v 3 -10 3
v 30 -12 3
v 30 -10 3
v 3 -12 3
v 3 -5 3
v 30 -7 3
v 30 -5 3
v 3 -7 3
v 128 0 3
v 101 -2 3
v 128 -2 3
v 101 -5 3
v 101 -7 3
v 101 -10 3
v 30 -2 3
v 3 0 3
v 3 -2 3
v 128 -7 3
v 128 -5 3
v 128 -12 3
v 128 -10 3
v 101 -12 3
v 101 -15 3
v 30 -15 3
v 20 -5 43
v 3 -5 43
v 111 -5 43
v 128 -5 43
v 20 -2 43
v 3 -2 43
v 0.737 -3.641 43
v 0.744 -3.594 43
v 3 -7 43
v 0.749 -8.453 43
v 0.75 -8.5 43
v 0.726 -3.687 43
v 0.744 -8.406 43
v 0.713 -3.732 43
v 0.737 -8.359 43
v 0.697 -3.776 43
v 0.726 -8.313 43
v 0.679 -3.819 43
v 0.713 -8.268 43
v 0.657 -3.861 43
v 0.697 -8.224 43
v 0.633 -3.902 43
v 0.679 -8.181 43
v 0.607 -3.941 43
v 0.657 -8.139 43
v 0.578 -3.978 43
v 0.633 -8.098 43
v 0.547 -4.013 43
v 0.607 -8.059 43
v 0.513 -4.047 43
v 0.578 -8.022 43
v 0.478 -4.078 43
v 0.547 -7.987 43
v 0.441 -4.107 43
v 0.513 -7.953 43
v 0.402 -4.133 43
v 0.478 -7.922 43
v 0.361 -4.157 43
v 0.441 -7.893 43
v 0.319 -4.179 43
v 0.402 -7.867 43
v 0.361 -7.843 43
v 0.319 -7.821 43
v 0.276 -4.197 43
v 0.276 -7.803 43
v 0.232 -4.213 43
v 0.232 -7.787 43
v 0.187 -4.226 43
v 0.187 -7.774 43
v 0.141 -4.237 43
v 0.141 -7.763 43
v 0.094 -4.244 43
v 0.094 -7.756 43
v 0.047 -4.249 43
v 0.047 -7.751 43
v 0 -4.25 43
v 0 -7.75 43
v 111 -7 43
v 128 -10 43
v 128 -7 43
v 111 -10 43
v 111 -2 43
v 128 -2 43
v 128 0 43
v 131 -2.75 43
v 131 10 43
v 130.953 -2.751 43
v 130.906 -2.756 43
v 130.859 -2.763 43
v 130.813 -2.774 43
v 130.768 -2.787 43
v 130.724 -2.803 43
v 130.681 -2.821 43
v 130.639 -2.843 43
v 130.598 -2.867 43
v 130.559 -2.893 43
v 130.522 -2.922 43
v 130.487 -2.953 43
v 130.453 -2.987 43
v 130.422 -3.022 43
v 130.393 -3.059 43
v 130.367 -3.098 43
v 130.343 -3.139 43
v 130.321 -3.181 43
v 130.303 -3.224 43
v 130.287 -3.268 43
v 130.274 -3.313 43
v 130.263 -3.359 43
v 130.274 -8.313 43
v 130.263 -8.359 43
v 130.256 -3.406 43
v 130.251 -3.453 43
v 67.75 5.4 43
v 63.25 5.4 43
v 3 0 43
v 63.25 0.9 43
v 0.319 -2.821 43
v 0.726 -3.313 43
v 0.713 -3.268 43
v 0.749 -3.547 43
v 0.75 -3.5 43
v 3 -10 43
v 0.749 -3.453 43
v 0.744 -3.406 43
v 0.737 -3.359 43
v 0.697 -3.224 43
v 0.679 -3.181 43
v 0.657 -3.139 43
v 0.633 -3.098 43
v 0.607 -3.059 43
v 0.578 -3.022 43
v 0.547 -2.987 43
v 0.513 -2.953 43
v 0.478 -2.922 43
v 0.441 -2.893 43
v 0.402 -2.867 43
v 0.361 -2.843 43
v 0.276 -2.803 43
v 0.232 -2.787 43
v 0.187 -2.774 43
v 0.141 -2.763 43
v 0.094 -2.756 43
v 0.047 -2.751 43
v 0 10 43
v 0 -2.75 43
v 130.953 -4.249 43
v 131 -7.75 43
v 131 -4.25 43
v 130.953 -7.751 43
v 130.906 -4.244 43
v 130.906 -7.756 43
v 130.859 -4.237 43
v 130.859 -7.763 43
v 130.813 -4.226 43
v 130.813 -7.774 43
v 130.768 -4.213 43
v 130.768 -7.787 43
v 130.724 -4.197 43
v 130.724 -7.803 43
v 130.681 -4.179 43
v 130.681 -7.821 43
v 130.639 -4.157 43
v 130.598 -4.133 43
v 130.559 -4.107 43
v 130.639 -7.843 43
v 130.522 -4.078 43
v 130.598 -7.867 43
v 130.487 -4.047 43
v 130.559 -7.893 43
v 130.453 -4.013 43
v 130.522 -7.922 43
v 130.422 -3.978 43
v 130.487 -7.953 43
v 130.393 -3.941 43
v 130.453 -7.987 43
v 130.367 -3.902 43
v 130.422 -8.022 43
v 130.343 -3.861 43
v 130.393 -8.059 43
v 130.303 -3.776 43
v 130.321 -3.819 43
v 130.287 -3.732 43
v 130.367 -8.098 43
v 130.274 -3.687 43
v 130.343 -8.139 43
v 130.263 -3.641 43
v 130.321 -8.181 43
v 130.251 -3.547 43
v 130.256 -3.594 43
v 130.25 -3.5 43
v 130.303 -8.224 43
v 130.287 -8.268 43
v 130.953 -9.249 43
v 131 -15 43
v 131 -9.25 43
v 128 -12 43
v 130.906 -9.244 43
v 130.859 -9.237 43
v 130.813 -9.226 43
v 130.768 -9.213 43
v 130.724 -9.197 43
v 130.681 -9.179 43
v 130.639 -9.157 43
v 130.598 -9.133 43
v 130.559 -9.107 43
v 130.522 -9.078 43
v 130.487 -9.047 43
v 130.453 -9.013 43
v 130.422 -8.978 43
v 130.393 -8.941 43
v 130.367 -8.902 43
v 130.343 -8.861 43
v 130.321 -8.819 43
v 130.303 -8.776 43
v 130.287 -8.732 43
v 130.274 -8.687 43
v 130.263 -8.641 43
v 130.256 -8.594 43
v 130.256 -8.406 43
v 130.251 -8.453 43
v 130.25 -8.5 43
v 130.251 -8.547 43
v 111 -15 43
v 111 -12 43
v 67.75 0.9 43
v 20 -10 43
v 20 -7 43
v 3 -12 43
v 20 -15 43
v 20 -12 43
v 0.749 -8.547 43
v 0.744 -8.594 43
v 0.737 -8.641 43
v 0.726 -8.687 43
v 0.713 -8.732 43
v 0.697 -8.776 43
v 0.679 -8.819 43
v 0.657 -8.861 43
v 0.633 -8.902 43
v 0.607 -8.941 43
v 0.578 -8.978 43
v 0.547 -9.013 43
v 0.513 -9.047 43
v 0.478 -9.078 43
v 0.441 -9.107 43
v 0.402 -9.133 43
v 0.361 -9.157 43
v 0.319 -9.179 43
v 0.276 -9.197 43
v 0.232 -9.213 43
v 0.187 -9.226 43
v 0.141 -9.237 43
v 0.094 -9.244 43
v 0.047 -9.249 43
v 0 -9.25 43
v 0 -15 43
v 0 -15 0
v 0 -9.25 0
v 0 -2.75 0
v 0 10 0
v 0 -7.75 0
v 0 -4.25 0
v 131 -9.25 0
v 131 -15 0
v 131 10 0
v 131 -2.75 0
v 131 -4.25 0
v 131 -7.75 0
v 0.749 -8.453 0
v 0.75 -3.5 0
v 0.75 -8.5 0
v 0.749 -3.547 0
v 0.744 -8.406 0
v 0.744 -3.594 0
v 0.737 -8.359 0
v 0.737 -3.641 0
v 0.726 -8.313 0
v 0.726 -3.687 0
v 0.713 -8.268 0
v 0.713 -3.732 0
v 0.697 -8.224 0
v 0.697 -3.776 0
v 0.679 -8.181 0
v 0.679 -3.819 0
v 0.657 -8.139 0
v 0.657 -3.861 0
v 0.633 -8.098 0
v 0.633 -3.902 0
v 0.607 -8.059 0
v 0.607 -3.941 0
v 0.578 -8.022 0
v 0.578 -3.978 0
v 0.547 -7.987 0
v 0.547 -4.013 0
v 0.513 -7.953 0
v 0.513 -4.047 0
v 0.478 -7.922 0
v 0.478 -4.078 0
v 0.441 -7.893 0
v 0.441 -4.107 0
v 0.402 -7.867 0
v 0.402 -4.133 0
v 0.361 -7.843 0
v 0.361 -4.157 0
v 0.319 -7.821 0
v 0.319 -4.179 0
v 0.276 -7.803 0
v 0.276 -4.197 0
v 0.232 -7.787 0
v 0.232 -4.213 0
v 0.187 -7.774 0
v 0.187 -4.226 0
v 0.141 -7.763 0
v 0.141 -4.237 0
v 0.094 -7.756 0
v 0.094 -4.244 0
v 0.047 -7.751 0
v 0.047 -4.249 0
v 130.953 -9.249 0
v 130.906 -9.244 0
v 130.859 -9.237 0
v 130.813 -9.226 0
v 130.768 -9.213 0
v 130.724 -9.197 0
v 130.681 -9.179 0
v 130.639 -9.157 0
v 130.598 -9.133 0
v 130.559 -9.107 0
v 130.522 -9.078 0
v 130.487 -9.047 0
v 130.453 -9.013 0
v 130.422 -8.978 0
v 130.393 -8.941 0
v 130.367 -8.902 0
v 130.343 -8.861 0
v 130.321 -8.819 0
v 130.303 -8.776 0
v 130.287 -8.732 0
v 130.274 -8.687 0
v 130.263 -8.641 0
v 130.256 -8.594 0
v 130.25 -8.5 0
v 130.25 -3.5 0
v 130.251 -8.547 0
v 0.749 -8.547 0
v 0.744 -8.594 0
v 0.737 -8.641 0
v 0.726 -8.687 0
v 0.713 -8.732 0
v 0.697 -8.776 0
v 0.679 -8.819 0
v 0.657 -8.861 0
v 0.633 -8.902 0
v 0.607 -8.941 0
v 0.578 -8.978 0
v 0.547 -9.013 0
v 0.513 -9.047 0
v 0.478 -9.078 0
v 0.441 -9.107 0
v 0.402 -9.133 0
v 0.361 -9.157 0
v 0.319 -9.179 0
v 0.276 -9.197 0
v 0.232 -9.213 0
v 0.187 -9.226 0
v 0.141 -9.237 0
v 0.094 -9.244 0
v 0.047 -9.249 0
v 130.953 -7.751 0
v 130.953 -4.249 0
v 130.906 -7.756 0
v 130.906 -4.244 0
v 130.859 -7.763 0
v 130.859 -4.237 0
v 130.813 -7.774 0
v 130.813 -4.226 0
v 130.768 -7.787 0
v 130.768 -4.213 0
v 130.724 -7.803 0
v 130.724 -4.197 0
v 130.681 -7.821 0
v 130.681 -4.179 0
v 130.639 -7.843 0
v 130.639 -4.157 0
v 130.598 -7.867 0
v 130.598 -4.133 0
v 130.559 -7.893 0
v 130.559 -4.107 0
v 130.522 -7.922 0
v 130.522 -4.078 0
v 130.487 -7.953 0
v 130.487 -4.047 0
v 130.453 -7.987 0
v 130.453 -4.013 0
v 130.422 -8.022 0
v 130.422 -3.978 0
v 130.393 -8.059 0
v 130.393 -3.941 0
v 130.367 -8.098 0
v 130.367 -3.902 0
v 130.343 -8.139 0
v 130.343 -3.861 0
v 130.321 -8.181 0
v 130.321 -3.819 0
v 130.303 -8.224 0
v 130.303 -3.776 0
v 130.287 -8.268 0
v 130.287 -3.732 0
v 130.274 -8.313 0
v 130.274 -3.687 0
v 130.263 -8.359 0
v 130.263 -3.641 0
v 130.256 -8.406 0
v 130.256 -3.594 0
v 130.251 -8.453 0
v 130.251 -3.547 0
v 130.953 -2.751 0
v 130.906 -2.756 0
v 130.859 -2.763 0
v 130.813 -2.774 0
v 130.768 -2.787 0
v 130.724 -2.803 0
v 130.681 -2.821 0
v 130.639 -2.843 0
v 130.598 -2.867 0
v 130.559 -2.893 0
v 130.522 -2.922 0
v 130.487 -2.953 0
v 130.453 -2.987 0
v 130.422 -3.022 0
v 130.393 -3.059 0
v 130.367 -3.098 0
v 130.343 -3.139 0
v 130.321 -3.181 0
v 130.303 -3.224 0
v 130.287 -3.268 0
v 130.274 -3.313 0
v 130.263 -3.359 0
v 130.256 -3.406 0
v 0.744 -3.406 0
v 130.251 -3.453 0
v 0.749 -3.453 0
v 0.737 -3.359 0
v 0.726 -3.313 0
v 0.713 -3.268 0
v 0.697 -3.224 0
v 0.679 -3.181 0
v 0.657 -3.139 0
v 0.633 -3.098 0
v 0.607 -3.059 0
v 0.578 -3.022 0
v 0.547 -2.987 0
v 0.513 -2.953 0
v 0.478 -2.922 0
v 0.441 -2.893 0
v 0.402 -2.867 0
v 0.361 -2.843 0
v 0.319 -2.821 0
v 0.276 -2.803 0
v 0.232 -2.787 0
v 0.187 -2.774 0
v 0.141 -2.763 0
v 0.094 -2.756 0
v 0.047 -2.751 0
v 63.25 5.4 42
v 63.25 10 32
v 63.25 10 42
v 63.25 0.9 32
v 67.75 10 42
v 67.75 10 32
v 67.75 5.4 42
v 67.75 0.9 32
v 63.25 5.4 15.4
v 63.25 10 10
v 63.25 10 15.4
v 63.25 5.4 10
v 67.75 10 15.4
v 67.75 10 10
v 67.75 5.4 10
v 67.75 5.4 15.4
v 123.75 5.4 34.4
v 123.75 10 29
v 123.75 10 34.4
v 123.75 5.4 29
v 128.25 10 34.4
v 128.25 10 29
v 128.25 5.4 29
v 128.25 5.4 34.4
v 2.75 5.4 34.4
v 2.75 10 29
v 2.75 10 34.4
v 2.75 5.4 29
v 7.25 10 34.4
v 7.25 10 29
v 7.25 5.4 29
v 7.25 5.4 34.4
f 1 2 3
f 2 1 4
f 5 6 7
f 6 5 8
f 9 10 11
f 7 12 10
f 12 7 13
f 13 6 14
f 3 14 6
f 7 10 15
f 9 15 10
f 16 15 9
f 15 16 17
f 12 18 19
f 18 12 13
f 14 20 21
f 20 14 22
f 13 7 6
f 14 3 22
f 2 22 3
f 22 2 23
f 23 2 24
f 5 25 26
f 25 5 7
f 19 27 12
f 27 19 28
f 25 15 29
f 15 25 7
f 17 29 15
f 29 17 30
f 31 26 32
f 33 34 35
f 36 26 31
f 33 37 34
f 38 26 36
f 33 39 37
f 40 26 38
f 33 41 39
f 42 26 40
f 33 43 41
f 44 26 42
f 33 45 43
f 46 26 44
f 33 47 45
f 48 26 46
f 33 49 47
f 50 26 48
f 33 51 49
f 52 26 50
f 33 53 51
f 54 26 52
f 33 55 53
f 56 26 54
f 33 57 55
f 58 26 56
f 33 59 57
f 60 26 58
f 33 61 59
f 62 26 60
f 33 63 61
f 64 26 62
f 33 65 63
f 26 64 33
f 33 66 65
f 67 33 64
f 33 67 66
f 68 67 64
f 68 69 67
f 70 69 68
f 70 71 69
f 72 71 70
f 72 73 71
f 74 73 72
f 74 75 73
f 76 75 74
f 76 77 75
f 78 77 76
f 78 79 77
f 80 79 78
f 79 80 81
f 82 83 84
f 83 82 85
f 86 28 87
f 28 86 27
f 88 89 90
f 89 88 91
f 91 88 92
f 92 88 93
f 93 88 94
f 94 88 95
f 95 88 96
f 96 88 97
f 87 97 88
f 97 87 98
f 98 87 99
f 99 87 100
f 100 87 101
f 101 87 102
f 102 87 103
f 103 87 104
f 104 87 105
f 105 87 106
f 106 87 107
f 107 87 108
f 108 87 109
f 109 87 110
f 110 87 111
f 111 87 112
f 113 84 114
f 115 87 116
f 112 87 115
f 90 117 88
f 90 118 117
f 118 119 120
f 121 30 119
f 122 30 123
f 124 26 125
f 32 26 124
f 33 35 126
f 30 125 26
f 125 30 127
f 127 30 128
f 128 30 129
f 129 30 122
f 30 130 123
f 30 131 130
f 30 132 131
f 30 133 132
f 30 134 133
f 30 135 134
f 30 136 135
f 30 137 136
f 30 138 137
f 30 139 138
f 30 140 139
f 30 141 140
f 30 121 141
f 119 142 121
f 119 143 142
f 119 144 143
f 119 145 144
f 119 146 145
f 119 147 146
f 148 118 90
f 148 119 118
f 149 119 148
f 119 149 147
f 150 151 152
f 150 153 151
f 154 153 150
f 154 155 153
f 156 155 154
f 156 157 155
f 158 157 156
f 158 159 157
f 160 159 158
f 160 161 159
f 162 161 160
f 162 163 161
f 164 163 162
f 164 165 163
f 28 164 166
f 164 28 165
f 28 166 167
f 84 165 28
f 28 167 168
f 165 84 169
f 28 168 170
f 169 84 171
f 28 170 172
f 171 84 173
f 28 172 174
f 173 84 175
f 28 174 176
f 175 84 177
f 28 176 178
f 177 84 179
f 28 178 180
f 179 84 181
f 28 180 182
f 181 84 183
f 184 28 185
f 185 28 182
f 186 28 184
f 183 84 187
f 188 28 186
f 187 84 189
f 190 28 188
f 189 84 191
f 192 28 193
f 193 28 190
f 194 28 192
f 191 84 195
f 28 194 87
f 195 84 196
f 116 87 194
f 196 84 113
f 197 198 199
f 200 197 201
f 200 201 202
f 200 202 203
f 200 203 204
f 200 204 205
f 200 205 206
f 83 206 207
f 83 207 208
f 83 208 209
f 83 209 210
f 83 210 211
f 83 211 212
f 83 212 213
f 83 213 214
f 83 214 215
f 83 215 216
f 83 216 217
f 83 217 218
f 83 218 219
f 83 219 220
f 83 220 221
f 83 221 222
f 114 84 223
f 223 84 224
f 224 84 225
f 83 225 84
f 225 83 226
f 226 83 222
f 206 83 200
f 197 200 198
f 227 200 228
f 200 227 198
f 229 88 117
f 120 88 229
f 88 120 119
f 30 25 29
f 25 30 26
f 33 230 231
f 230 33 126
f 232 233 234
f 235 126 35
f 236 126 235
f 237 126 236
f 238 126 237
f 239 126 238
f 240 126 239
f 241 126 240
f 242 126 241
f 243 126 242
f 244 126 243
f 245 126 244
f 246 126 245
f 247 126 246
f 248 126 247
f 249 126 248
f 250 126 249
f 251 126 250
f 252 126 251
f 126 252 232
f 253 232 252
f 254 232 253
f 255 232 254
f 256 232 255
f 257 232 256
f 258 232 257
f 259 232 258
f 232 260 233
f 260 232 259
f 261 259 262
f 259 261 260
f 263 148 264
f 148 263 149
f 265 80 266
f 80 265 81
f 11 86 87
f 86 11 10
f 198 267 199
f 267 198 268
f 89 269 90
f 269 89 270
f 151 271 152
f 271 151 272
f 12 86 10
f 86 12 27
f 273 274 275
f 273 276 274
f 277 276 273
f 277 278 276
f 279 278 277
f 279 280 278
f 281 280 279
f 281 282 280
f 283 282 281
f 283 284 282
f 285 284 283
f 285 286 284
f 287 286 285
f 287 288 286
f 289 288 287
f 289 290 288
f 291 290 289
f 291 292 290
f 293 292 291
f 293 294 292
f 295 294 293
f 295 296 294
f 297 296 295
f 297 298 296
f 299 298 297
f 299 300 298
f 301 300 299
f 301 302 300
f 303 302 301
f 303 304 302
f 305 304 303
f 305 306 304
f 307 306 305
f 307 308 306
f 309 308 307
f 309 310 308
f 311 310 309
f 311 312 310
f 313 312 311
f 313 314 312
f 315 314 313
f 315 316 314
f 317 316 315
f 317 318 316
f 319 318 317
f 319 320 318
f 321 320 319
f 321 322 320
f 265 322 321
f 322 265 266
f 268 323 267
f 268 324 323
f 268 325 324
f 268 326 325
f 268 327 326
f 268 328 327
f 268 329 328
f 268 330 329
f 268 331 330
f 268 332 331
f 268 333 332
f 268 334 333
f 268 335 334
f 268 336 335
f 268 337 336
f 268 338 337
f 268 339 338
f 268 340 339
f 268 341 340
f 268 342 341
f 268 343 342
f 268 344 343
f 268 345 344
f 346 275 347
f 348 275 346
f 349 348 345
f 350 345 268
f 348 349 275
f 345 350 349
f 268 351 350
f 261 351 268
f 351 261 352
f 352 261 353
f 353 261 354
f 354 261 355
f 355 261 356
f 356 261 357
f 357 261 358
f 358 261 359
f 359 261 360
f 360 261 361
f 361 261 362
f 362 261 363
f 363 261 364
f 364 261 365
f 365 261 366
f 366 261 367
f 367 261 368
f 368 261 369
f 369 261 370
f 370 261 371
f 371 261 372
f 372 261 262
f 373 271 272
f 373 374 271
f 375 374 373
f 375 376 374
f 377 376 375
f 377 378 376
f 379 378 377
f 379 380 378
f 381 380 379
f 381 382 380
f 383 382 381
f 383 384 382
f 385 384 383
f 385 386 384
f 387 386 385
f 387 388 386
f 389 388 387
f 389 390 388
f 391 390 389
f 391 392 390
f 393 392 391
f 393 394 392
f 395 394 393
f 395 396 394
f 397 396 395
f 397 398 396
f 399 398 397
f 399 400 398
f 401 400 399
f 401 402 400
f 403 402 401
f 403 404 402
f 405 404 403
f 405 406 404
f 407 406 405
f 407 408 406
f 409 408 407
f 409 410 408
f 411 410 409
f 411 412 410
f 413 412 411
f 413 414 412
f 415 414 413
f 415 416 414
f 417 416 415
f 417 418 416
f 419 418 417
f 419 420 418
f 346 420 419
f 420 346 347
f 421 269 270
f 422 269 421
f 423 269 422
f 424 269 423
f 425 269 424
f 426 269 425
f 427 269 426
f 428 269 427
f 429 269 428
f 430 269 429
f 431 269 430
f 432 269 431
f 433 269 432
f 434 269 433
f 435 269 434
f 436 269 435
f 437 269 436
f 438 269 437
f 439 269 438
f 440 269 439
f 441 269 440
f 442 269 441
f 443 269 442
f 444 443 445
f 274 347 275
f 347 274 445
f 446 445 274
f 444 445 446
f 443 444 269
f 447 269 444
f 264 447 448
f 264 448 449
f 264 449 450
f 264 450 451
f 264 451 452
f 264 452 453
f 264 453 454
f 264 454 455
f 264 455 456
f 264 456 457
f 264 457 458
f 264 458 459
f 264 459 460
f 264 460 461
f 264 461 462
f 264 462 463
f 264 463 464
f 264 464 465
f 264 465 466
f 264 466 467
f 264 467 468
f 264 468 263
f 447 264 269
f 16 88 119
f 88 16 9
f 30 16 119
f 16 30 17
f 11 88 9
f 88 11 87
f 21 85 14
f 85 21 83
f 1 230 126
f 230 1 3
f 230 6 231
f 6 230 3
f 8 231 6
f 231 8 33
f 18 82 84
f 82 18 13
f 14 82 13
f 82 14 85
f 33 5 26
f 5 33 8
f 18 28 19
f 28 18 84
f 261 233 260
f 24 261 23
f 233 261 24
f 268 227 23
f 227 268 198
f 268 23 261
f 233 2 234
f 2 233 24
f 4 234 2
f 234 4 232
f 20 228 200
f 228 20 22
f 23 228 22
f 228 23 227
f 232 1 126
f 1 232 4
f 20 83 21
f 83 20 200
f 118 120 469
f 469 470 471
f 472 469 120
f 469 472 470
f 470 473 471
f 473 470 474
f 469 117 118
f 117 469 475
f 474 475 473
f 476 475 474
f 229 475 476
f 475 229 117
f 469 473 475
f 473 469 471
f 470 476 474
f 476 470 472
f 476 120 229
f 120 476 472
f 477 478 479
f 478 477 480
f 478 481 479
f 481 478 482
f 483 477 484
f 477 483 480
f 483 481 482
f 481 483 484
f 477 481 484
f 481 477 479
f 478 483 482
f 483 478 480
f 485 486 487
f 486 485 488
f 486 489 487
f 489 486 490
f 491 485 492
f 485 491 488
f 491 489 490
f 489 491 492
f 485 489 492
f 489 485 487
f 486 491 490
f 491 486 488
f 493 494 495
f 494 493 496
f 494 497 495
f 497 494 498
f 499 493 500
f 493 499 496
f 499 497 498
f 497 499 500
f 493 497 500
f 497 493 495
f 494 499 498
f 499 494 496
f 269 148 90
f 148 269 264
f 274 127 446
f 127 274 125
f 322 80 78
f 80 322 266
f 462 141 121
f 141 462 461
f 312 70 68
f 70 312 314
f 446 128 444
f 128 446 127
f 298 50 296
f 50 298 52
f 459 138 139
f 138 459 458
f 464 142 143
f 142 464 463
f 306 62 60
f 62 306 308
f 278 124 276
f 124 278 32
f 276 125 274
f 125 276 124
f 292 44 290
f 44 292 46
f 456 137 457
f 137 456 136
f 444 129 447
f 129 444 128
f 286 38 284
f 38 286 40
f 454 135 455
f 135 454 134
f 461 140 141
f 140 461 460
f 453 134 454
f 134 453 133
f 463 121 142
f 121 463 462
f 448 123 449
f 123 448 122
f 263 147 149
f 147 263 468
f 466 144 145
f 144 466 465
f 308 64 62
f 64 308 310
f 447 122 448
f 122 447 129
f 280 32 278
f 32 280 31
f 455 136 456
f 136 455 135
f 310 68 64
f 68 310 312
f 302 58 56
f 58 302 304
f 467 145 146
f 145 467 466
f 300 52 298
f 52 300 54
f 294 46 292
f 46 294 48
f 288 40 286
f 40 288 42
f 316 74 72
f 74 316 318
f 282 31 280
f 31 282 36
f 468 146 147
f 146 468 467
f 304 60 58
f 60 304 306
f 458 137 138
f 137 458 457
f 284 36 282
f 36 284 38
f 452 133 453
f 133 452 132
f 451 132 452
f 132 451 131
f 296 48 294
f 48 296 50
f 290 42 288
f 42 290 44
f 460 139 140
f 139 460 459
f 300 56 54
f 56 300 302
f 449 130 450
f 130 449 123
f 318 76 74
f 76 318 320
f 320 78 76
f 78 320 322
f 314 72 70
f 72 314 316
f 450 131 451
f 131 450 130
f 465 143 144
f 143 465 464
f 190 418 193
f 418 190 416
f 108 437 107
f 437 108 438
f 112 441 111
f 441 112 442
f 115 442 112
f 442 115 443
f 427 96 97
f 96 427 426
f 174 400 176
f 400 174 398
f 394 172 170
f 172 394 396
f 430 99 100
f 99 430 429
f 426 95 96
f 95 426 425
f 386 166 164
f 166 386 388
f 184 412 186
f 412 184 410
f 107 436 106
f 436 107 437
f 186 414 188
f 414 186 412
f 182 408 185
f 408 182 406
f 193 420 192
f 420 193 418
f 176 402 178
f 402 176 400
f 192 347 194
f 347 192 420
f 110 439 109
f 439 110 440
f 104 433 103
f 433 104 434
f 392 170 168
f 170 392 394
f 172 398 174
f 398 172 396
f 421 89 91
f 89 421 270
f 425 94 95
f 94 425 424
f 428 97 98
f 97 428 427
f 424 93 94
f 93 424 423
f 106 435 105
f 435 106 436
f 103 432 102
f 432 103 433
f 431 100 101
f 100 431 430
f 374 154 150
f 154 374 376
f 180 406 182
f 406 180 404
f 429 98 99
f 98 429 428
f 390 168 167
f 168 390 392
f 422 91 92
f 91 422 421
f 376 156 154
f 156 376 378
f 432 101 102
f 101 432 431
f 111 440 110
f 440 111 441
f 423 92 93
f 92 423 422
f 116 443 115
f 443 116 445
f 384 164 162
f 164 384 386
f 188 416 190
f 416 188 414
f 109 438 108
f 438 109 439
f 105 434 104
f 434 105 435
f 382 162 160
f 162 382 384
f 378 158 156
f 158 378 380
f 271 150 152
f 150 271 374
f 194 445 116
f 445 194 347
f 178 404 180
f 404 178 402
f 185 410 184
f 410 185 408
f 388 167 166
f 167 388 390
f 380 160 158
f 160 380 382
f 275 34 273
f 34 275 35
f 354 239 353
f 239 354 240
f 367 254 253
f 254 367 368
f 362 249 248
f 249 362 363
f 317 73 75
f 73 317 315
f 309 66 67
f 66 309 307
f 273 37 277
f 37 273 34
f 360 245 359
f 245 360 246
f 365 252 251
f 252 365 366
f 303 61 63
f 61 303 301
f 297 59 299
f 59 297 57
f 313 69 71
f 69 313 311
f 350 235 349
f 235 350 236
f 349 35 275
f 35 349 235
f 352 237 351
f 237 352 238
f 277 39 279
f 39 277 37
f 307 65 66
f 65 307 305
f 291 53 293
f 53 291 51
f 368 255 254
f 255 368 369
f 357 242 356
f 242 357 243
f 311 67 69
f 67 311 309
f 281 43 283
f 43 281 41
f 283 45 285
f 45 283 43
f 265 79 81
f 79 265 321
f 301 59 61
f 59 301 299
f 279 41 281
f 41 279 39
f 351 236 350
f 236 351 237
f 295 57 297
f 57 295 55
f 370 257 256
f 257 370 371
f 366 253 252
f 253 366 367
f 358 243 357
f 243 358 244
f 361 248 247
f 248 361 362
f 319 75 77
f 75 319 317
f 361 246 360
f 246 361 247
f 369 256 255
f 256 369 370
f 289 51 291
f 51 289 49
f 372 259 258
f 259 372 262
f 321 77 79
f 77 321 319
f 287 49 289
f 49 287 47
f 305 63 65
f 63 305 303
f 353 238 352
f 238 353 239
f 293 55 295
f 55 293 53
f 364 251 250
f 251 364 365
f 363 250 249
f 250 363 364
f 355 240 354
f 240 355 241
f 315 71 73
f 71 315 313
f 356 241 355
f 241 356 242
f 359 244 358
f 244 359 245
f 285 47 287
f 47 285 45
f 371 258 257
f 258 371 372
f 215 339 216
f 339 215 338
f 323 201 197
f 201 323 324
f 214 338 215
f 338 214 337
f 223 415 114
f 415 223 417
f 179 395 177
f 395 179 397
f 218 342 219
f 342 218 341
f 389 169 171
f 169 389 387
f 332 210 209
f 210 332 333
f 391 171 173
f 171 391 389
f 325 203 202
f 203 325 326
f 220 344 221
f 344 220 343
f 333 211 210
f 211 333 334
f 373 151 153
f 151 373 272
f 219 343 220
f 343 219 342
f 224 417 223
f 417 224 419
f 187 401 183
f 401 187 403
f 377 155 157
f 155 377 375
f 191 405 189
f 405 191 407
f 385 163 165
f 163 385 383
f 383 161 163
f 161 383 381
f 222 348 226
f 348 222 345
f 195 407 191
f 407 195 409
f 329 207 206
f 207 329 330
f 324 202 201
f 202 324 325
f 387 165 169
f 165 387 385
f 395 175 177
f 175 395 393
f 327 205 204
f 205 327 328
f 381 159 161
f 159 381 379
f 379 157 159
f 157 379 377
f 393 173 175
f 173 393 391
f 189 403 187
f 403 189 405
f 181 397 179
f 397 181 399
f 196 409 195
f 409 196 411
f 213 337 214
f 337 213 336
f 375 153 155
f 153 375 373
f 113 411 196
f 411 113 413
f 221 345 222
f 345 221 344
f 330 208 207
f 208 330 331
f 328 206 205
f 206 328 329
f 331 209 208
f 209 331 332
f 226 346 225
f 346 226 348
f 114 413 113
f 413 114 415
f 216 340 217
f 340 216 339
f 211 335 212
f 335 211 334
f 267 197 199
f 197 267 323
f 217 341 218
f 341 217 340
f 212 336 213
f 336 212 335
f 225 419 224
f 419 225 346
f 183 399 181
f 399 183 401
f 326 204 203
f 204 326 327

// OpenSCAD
// file: skadis_base.scad
module skadis_base() {
    translate([-4.5/2, 4.6, 22]) rotate([90, 0, 0]) union() {
        cube([4.5, 10, 4.6]);
        translate([0, 0, -4.5]) cube([4.5, 15, 4.5]);
        translate([0, -22, 0]) cube([4.5, 5.4, 4.6]);
    }
}

//difference() {
//    cube([60, 60, 4.6], center = true);
//    skadis_base();
//}
// main file
NUMBER_OF_PLATES    =   3;
BUILD_PLATE_WIDTH   =   120;
EXTRA_MARGIN        =   5;
THICKNESS           =   2;
WALL_THICKNESS      =   3;
FLOOR_THICKNESS     =   3;
BACKPLATE_THICKNESS =   10;

// CALCULATED
FLANGE_HEIGHT       =   BUILD_PLATE_WIDTH/3;
TOP_FLANGE_WIDTH    =   BUILD_PLATE_WIDTH/6;
BOTTOM_FLANGE_WIDTH =   BUILD_PLATE_WIDTH/4;
TOTAL_WIDTH         =   BUILD_PLATE_WIDTH + WALL_THICKNESS*2 + EXTRA_MARGIN;
TOTAL_DEPTH_PER_PLATE = WALL_THICKNESS+THICKNESS;
TOTAL_HEIGHT        = FLANGE_HEIGHT+FLOOR_THICKNESS;


SKADIS_Y_DIST       =   60.5;
SKADIS_Z_DIST       =   19.0;

include <skadis_base.scad>;

module build_plate_holder() {
    difference() {
        union() {
            backplate();
            for(i = [0 : NUMBER_OF_PLATES-1]) {
                difference() {
                    translate([0, -i*TOTAL_DEPTH_PER_PLATE, 0]) single_plate_segment();
                }
            }
        }
        for(i = [0 : NUMBER_OF_PLATES-2]) {
            translate([0, -THICKNESS-WALL_THICKNESS/2+-i*TOTAL_DEPTH_PER_PLATE, 0]) cylinder(h = TOTAL_HEIGHT, r = WALL_THICKNESS/4, $fn = 100);
            translate([TOTAL_WIDTH, -THICKNESS-WALL_THICKNESS/2+-i*TOTAL_DEPTH_PER_PLATE, 0]) cylinder(h = TOTAL_HEIGHT, r = WALL_THICKNESS/4, $fn = 100);
        }
    }
}


module backplate() {
    SKADIS_EDGE_INDEX = floor(TOTAL_WIDTH/2/SKADIS_Y_DIST);
        // TWO Skadis on the edges top, ONE bottom center
    difference() {
        cube([TOTAL_WIDTH, BACKPLATE_THICKNESS, TOTAL_HEIGHT]);
        union() {
            translate([TOTAL_WIDTH/2, BACKPLATE_THICKNESS, 10]) rotate([0, 0, 180]) skadis_base();
            
            translate([TOTAL_WIDTH/2+SKADIS_Y_DIST, BACKPLATE_THICKNESS, 10+SKADIS_Z_DIST]) rotate([0, 0, 180]) skadis_base();
               translate([TOTAL_WIDTH/2-SKADIS_Y_DIST, BACKPLATE_THICKNESS, 10+SKADIS_Z_DIST]) rotate([0, 0, 180]) skadis_base();
        }
    }
}

module single_plate_segment() {
    translate([0, -TOTAL_DEPTH_PER_PLATE, 0]) 
        union() {
            flanges();
            cube([TOTAL_WIDTH, TOTAL_DEPTH_PER_PLATE, FLOOR_THICKNESS]);
            cube([WALL_THICKNESS, TOTAL_DEPTH_PER_PLATE, FLANGE_HEIGHT+FLOOR_THICKNESS]);
            translate([TOTAL_WIDTH-WALL_THICKNESS, 0]) cube([WALL_THICKNESS, TOTAL_DEPTH_PER_PLATE, TOTAL_HEIGHT]);
        }
}

module flanges() {
    flange();
    translate([TOTAL_WIDTH,0]) mirror([1, 0, 0]) flange();
    
}

module flange() {
    translate([0, WALL_THICKNESS, FLOOR_THICKNESS]) rotate([90, 0, 0]) linear_extrude(WALL_THICKNESS) polygon(points = [[0, 0], [0, FLANGE_HEIGHT], [TOP_FLANGE_WIDTH, FLANGE_HEIGHT], [BOTTOM_FLANGE_WIDTH, 0]]);
}


build_plate_holder();
